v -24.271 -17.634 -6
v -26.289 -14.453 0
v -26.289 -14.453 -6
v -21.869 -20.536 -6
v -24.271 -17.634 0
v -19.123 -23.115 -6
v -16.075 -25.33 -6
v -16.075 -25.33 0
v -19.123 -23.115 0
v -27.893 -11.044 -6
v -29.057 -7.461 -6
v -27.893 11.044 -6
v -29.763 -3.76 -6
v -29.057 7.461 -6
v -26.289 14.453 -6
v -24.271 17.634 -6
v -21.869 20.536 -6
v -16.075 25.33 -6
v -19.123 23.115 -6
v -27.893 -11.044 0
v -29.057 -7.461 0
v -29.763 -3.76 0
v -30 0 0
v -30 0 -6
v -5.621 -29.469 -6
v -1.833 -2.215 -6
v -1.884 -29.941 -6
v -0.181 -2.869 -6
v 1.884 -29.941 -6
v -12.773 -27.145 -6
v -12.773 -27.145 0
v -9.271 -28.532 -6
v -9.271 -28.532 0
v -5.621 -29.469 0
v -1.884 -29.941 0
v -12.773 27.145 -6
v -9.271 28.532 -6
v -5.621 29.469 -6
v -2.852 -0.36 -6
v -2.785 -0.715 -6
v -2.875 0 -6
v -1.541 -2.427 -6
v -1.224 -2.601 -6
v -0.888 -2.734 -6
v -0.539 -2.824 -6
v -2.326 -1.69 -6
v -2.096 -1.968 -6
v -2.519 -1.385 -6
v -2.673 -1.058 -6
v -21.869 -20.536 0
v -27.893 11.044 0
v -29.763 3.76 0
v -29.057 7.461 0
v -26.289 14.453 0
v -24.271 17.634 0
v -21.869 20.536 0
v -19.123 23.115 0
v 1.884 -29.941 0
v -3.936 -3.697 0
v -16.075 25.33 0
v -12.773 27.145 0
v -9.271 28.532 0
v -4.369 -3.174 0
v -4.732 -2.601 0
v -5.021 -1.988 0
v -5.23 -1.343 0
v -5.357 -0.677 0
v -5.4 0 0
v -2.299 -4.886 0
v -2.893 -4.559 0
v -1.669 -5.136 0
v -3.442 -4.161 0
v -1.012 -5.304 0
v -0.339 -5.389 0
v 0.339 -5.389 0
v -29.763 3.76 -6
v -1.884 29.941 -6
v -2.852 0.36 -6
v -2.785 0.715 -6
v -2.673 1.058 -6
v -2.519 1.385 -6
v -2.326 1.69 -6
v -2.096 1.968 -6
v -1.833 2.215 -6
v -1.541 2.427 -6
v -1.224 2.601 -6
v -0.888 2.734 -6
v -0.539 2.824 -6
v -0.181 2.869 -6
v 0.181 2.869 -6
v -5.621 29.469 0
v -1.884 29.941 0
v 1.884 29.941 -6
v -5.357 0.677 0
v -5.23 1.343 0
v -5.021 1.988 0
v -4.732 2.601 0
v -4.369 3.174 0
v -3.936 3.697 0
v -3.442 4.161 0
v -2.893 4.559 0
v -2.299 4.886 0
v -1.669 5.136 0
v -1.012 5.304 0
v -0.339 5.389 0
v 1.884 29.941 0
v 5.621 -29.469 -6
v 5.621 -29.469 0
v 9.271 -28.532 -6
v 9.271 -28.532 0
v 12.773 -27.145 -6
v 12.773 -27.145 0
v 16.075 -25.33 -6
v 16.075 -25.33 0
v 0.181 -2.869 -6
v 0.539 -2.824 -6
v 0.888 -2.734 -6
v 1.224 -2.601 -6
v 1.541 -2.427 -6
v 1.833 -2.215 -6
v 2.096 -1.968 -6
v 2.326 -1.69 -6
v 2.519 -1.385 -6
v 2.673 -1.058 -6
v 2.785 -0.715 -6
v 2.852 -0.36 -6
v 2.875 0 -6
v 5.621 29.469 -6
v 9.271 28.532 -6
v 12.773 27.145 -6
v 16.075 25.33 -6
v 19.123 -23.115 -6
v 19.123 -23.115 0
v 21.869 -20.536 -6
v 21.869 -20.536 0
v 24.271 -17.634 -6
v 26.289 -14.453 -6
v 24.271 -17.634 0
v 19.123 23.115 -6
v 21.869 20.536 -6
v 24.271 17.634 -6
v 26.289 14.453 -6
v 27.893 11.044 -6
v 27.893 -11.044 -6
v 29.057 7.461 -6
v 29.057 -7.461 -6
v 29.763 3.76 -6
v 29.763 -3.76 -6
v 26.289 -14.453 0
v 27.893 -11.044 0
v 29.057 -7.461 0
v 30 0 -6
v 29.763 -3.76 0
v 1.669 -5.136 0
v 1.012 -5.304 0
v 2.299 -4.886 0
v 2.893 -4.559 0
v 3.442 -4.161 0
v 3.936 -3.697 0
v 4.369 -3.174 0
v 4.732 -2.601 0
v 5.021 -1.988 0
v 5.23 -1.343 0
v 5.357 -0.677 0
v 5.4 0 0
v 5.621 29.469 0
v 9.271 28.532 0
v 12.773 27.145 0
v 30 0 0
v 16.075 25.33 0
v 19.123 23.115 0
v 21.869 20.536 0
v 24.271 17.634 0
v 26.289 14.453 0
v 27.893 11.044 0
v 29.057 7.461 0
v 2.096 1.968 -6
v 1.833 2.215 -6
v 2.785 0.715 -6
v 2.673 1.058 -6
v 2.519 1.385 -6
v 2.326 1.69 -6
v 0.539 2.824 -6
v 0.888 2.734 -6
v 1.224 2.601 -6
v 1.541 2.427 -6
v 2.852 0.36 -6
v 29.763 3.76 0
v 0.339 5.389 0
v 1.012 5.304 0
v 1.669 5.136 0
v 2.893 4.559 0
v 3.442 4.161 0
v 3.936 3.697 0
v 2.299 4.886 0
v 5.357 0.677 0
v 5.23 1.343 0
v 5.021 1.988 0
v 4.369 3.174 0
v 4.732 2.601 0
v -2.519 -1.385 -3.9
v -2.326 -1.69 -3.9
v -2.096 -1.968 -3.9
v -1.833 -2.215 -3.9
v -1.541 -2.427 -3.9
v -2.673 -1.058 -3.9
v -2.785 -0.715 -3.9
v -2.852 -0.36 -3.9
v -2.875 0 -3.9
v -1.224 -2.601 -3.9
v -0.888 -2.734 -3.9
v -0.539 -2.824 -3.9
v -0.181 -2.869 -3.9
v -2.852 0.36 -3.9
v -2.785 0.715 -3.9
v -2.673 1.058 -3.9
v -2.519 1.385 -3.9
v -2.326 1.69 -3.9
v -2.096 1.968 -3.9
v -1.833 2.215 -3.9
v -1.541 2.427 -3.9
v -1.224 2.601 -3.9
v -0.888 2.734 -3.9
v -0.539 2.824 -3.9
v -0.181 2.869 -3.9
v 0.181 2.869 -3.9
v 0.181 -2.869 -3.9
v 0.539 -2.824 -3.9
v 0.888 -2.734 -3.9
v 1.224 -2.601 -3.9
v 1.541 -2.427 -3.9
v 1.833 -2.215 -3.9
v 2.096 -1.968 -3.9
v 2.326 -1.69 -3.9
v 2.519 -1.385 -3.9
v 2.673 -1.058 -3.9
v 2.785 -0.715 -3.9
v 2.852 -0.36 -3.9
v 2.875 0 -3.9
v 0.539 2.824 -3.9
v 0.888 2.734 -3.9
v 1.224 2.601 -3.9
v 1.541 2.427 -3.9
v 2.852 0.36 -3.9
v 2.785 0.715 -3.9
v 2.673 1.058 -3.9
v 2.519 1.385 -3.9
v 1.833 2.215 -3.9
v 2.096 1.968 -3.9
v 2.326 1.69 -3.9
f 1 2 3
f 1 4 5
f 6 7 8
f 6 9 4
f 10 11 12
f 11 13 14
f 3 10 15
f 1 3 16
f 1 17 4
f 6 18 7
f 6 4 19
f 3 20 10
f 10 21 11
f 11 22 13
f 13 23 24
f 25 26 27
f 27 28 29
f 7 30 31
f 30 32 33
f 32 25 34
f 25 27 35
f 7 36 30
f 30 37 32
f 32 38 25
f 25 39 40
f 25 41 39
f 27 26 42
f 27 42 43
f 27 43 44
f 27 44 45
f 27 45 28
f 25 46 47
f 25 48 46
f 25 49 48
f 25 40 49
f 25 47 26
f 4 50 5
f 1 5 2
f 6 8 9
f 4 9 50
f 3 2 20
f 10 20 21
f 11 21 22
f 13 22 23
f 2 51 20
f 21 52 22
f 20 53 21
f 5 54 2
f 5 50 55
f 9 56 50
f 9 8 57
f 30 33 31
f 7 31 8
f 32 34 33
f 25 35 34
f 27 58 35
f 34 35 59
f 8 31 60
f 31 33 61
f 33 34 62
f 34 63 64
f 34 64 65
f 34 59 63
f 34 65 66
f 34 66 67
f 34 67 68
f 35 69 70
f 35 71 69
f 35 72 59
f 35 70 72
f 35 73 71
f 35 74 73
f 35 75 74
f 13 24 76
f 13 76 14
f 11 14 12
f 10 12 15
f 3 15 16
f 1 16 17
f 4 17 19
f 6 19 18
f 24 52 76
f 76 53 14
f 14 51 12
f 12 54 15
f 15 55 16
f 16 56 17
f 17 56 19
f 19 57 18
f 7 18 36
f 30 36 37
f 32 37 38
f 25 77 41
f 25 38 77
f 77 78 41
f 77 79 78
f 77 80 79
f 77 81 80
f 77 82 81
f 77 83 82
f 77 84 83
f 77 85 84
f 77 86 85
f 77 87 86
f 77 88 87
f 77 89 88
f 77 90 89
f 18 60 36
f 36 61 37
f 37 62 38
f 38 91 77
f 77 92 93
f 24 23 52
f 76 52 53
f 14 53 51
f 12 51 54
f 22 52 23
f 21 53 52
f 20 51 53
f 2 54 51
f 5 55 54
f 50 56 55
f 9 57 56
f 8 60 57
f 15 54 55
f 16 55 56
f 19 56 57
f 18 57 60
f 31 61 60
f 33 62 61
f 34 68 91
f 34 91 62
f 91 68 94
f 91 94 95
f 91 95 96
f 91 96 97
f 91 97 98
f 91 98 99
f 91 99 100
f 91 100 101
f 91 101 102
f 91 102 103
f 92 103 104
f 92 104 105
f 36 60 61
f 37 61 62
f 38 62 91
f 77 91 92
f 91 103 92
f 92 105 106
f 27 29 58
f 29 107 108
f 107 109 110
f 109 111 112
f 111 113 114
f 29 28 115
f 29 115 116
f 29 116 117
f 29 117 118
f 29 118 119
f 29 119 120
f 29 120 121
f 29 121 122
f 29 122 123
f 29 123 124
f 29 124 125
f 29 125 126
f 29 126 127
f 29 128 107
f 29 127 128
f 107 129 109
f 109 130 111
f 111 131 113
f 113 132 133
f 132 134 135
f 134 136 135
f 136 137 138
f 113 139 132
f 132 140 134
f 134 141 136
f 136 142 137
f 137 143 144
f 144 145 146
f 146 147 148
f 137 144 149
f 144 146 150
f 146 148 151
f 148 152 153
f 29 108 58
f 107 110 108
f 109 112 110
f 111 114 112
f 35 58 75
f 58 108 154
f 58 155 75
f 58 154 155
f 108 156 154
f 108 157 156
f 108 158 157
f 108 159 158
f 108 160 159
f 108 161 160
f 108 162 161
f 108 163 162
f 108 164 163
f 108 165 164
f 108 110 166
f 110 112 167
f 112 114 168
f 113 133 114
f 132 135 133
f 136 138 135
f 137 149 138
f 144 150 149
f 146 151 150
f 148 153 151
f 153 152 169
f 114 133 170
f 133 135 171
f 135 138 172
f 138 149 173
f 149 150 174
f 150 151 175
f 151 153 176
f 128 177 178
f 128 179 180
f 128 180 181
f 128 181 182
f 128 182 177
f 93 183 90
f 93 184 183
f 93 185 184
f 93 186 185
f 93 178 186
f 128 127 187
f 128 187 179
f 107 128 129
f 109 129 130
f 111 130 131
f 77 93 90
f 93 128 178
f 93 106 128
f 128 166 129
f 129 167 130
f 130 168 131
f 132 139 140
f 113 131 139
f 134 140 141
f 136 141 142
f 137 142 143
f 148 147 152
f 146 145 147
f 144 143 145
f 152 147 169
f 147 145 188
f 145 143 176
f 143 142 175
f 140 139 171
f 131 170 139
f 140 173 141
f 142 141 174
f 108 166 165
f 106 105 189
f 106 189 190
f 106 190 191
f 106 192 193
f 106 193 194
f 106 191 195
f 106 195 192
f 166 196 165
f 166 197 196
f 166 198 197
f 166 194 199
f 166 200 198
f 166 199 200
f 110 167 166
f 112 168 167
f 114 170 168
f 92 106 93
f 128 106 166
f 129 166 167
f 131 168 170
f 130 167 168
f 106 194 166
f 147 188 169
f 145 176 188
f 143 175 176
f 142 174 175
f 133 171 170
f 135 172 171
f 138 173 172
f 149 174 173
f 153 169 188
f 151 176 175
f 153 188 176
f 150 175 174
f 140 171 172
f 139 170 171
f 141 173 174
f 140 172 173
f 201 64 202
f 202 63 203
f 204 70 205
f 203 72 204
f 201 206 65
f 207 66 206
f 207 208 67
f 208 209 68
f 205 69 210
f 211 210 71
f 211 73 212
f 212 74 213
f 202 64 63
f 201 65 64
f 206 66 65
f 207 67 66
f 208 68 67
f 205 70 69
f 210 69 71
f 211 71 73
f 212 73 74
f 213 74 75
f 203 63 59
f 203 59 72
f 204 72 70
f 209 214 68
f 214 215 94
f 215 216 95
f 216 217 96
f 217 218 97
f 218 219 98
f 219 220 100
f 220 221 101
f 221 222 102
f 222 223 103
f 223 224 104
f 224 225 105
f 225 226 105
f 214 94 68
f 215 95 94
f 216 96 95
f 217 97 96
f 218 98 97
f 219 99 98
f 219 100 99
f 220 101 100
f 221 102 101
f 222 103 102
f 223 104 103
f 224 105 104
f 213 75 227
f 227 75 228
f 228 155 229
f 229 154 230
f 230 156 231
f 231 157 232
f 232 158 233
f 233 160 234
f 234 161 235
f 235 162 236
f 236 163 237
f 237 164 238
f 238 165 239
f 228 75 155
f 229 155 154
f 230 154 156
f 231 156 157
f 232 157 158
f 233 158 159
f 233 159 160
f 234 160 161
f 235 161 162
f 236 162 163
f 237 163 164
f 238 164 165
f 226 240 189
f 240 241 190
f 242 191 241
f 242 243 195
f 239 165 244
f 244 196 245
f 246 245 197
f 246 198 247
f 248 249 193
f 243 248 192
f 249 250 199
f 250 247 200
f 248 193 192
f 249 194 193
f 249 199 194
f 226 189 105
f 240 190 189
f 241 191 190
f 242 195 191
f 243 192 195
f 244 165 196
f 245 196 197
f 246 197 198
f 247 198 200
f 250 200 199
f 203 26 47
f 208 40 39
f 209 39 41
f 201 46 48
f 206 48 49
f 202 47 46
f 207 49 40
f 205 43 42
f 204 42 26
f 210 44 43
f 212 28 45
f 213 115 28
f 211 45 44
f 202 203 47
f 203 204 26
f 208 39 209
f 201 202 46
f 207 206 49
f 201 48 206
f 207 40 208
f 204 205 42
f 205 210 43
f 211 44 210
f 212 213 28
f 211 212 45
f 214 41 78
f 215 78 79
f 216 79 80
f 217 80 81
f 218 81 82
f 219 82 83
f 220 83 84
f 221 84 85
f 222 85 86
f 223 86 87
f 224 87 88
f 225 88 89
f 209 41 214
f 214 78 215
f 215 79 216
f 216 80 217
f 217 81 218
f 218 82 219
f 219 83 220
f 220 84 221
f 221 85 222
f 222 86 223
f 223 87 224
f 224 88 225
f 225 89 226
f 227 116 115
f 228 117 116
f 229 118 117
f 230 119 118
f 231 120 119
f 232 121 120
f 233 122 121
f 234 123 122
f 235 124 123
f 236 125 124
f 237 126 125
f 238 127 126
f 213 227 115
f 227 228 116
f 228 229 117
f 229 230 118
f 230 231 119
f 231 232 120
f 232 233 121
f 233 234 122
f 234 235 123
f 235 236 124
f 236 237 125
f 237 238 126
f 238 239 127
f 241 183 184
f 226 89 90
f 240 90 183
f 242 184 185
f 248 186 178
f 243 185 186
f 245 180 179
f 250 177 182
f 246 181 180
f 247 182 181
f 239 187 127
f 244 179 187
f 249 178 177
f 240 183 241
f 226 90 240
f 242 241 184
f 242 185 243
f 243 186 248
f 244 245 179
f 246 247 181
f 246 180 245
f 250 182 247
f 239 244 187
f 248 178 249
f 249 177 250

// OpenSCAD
$fn = 50;

difference() {
	union() {
		translate(v = [0, 0, -6.0]) {
			cylinder(h = 6, r = 30.0);
		}
	}
	union() {
		translate(v = [0, 0, 0]) {
			rotate(a = [0, 0, 0]) {
				difference() {
					union() {
						translate(v = [0, 0, -9.0]) {
							cylinder(h = 9, r = 2.6);
						}
						translate(v = [0, 0, -3.9]) {
							cylinder(h = 3.9, r1 = 2.875, r2 = 5.4);
						}
						translate(v = [0, 0, -9.0]) {
							cylinder(h = 9, r = 2.875);
						}
						translate(v = [0, 0, -9.0]) {
							cylinder(h = 9, r = 2.6);
						}
					}
					union();
				}
			}
		}
	}
}
